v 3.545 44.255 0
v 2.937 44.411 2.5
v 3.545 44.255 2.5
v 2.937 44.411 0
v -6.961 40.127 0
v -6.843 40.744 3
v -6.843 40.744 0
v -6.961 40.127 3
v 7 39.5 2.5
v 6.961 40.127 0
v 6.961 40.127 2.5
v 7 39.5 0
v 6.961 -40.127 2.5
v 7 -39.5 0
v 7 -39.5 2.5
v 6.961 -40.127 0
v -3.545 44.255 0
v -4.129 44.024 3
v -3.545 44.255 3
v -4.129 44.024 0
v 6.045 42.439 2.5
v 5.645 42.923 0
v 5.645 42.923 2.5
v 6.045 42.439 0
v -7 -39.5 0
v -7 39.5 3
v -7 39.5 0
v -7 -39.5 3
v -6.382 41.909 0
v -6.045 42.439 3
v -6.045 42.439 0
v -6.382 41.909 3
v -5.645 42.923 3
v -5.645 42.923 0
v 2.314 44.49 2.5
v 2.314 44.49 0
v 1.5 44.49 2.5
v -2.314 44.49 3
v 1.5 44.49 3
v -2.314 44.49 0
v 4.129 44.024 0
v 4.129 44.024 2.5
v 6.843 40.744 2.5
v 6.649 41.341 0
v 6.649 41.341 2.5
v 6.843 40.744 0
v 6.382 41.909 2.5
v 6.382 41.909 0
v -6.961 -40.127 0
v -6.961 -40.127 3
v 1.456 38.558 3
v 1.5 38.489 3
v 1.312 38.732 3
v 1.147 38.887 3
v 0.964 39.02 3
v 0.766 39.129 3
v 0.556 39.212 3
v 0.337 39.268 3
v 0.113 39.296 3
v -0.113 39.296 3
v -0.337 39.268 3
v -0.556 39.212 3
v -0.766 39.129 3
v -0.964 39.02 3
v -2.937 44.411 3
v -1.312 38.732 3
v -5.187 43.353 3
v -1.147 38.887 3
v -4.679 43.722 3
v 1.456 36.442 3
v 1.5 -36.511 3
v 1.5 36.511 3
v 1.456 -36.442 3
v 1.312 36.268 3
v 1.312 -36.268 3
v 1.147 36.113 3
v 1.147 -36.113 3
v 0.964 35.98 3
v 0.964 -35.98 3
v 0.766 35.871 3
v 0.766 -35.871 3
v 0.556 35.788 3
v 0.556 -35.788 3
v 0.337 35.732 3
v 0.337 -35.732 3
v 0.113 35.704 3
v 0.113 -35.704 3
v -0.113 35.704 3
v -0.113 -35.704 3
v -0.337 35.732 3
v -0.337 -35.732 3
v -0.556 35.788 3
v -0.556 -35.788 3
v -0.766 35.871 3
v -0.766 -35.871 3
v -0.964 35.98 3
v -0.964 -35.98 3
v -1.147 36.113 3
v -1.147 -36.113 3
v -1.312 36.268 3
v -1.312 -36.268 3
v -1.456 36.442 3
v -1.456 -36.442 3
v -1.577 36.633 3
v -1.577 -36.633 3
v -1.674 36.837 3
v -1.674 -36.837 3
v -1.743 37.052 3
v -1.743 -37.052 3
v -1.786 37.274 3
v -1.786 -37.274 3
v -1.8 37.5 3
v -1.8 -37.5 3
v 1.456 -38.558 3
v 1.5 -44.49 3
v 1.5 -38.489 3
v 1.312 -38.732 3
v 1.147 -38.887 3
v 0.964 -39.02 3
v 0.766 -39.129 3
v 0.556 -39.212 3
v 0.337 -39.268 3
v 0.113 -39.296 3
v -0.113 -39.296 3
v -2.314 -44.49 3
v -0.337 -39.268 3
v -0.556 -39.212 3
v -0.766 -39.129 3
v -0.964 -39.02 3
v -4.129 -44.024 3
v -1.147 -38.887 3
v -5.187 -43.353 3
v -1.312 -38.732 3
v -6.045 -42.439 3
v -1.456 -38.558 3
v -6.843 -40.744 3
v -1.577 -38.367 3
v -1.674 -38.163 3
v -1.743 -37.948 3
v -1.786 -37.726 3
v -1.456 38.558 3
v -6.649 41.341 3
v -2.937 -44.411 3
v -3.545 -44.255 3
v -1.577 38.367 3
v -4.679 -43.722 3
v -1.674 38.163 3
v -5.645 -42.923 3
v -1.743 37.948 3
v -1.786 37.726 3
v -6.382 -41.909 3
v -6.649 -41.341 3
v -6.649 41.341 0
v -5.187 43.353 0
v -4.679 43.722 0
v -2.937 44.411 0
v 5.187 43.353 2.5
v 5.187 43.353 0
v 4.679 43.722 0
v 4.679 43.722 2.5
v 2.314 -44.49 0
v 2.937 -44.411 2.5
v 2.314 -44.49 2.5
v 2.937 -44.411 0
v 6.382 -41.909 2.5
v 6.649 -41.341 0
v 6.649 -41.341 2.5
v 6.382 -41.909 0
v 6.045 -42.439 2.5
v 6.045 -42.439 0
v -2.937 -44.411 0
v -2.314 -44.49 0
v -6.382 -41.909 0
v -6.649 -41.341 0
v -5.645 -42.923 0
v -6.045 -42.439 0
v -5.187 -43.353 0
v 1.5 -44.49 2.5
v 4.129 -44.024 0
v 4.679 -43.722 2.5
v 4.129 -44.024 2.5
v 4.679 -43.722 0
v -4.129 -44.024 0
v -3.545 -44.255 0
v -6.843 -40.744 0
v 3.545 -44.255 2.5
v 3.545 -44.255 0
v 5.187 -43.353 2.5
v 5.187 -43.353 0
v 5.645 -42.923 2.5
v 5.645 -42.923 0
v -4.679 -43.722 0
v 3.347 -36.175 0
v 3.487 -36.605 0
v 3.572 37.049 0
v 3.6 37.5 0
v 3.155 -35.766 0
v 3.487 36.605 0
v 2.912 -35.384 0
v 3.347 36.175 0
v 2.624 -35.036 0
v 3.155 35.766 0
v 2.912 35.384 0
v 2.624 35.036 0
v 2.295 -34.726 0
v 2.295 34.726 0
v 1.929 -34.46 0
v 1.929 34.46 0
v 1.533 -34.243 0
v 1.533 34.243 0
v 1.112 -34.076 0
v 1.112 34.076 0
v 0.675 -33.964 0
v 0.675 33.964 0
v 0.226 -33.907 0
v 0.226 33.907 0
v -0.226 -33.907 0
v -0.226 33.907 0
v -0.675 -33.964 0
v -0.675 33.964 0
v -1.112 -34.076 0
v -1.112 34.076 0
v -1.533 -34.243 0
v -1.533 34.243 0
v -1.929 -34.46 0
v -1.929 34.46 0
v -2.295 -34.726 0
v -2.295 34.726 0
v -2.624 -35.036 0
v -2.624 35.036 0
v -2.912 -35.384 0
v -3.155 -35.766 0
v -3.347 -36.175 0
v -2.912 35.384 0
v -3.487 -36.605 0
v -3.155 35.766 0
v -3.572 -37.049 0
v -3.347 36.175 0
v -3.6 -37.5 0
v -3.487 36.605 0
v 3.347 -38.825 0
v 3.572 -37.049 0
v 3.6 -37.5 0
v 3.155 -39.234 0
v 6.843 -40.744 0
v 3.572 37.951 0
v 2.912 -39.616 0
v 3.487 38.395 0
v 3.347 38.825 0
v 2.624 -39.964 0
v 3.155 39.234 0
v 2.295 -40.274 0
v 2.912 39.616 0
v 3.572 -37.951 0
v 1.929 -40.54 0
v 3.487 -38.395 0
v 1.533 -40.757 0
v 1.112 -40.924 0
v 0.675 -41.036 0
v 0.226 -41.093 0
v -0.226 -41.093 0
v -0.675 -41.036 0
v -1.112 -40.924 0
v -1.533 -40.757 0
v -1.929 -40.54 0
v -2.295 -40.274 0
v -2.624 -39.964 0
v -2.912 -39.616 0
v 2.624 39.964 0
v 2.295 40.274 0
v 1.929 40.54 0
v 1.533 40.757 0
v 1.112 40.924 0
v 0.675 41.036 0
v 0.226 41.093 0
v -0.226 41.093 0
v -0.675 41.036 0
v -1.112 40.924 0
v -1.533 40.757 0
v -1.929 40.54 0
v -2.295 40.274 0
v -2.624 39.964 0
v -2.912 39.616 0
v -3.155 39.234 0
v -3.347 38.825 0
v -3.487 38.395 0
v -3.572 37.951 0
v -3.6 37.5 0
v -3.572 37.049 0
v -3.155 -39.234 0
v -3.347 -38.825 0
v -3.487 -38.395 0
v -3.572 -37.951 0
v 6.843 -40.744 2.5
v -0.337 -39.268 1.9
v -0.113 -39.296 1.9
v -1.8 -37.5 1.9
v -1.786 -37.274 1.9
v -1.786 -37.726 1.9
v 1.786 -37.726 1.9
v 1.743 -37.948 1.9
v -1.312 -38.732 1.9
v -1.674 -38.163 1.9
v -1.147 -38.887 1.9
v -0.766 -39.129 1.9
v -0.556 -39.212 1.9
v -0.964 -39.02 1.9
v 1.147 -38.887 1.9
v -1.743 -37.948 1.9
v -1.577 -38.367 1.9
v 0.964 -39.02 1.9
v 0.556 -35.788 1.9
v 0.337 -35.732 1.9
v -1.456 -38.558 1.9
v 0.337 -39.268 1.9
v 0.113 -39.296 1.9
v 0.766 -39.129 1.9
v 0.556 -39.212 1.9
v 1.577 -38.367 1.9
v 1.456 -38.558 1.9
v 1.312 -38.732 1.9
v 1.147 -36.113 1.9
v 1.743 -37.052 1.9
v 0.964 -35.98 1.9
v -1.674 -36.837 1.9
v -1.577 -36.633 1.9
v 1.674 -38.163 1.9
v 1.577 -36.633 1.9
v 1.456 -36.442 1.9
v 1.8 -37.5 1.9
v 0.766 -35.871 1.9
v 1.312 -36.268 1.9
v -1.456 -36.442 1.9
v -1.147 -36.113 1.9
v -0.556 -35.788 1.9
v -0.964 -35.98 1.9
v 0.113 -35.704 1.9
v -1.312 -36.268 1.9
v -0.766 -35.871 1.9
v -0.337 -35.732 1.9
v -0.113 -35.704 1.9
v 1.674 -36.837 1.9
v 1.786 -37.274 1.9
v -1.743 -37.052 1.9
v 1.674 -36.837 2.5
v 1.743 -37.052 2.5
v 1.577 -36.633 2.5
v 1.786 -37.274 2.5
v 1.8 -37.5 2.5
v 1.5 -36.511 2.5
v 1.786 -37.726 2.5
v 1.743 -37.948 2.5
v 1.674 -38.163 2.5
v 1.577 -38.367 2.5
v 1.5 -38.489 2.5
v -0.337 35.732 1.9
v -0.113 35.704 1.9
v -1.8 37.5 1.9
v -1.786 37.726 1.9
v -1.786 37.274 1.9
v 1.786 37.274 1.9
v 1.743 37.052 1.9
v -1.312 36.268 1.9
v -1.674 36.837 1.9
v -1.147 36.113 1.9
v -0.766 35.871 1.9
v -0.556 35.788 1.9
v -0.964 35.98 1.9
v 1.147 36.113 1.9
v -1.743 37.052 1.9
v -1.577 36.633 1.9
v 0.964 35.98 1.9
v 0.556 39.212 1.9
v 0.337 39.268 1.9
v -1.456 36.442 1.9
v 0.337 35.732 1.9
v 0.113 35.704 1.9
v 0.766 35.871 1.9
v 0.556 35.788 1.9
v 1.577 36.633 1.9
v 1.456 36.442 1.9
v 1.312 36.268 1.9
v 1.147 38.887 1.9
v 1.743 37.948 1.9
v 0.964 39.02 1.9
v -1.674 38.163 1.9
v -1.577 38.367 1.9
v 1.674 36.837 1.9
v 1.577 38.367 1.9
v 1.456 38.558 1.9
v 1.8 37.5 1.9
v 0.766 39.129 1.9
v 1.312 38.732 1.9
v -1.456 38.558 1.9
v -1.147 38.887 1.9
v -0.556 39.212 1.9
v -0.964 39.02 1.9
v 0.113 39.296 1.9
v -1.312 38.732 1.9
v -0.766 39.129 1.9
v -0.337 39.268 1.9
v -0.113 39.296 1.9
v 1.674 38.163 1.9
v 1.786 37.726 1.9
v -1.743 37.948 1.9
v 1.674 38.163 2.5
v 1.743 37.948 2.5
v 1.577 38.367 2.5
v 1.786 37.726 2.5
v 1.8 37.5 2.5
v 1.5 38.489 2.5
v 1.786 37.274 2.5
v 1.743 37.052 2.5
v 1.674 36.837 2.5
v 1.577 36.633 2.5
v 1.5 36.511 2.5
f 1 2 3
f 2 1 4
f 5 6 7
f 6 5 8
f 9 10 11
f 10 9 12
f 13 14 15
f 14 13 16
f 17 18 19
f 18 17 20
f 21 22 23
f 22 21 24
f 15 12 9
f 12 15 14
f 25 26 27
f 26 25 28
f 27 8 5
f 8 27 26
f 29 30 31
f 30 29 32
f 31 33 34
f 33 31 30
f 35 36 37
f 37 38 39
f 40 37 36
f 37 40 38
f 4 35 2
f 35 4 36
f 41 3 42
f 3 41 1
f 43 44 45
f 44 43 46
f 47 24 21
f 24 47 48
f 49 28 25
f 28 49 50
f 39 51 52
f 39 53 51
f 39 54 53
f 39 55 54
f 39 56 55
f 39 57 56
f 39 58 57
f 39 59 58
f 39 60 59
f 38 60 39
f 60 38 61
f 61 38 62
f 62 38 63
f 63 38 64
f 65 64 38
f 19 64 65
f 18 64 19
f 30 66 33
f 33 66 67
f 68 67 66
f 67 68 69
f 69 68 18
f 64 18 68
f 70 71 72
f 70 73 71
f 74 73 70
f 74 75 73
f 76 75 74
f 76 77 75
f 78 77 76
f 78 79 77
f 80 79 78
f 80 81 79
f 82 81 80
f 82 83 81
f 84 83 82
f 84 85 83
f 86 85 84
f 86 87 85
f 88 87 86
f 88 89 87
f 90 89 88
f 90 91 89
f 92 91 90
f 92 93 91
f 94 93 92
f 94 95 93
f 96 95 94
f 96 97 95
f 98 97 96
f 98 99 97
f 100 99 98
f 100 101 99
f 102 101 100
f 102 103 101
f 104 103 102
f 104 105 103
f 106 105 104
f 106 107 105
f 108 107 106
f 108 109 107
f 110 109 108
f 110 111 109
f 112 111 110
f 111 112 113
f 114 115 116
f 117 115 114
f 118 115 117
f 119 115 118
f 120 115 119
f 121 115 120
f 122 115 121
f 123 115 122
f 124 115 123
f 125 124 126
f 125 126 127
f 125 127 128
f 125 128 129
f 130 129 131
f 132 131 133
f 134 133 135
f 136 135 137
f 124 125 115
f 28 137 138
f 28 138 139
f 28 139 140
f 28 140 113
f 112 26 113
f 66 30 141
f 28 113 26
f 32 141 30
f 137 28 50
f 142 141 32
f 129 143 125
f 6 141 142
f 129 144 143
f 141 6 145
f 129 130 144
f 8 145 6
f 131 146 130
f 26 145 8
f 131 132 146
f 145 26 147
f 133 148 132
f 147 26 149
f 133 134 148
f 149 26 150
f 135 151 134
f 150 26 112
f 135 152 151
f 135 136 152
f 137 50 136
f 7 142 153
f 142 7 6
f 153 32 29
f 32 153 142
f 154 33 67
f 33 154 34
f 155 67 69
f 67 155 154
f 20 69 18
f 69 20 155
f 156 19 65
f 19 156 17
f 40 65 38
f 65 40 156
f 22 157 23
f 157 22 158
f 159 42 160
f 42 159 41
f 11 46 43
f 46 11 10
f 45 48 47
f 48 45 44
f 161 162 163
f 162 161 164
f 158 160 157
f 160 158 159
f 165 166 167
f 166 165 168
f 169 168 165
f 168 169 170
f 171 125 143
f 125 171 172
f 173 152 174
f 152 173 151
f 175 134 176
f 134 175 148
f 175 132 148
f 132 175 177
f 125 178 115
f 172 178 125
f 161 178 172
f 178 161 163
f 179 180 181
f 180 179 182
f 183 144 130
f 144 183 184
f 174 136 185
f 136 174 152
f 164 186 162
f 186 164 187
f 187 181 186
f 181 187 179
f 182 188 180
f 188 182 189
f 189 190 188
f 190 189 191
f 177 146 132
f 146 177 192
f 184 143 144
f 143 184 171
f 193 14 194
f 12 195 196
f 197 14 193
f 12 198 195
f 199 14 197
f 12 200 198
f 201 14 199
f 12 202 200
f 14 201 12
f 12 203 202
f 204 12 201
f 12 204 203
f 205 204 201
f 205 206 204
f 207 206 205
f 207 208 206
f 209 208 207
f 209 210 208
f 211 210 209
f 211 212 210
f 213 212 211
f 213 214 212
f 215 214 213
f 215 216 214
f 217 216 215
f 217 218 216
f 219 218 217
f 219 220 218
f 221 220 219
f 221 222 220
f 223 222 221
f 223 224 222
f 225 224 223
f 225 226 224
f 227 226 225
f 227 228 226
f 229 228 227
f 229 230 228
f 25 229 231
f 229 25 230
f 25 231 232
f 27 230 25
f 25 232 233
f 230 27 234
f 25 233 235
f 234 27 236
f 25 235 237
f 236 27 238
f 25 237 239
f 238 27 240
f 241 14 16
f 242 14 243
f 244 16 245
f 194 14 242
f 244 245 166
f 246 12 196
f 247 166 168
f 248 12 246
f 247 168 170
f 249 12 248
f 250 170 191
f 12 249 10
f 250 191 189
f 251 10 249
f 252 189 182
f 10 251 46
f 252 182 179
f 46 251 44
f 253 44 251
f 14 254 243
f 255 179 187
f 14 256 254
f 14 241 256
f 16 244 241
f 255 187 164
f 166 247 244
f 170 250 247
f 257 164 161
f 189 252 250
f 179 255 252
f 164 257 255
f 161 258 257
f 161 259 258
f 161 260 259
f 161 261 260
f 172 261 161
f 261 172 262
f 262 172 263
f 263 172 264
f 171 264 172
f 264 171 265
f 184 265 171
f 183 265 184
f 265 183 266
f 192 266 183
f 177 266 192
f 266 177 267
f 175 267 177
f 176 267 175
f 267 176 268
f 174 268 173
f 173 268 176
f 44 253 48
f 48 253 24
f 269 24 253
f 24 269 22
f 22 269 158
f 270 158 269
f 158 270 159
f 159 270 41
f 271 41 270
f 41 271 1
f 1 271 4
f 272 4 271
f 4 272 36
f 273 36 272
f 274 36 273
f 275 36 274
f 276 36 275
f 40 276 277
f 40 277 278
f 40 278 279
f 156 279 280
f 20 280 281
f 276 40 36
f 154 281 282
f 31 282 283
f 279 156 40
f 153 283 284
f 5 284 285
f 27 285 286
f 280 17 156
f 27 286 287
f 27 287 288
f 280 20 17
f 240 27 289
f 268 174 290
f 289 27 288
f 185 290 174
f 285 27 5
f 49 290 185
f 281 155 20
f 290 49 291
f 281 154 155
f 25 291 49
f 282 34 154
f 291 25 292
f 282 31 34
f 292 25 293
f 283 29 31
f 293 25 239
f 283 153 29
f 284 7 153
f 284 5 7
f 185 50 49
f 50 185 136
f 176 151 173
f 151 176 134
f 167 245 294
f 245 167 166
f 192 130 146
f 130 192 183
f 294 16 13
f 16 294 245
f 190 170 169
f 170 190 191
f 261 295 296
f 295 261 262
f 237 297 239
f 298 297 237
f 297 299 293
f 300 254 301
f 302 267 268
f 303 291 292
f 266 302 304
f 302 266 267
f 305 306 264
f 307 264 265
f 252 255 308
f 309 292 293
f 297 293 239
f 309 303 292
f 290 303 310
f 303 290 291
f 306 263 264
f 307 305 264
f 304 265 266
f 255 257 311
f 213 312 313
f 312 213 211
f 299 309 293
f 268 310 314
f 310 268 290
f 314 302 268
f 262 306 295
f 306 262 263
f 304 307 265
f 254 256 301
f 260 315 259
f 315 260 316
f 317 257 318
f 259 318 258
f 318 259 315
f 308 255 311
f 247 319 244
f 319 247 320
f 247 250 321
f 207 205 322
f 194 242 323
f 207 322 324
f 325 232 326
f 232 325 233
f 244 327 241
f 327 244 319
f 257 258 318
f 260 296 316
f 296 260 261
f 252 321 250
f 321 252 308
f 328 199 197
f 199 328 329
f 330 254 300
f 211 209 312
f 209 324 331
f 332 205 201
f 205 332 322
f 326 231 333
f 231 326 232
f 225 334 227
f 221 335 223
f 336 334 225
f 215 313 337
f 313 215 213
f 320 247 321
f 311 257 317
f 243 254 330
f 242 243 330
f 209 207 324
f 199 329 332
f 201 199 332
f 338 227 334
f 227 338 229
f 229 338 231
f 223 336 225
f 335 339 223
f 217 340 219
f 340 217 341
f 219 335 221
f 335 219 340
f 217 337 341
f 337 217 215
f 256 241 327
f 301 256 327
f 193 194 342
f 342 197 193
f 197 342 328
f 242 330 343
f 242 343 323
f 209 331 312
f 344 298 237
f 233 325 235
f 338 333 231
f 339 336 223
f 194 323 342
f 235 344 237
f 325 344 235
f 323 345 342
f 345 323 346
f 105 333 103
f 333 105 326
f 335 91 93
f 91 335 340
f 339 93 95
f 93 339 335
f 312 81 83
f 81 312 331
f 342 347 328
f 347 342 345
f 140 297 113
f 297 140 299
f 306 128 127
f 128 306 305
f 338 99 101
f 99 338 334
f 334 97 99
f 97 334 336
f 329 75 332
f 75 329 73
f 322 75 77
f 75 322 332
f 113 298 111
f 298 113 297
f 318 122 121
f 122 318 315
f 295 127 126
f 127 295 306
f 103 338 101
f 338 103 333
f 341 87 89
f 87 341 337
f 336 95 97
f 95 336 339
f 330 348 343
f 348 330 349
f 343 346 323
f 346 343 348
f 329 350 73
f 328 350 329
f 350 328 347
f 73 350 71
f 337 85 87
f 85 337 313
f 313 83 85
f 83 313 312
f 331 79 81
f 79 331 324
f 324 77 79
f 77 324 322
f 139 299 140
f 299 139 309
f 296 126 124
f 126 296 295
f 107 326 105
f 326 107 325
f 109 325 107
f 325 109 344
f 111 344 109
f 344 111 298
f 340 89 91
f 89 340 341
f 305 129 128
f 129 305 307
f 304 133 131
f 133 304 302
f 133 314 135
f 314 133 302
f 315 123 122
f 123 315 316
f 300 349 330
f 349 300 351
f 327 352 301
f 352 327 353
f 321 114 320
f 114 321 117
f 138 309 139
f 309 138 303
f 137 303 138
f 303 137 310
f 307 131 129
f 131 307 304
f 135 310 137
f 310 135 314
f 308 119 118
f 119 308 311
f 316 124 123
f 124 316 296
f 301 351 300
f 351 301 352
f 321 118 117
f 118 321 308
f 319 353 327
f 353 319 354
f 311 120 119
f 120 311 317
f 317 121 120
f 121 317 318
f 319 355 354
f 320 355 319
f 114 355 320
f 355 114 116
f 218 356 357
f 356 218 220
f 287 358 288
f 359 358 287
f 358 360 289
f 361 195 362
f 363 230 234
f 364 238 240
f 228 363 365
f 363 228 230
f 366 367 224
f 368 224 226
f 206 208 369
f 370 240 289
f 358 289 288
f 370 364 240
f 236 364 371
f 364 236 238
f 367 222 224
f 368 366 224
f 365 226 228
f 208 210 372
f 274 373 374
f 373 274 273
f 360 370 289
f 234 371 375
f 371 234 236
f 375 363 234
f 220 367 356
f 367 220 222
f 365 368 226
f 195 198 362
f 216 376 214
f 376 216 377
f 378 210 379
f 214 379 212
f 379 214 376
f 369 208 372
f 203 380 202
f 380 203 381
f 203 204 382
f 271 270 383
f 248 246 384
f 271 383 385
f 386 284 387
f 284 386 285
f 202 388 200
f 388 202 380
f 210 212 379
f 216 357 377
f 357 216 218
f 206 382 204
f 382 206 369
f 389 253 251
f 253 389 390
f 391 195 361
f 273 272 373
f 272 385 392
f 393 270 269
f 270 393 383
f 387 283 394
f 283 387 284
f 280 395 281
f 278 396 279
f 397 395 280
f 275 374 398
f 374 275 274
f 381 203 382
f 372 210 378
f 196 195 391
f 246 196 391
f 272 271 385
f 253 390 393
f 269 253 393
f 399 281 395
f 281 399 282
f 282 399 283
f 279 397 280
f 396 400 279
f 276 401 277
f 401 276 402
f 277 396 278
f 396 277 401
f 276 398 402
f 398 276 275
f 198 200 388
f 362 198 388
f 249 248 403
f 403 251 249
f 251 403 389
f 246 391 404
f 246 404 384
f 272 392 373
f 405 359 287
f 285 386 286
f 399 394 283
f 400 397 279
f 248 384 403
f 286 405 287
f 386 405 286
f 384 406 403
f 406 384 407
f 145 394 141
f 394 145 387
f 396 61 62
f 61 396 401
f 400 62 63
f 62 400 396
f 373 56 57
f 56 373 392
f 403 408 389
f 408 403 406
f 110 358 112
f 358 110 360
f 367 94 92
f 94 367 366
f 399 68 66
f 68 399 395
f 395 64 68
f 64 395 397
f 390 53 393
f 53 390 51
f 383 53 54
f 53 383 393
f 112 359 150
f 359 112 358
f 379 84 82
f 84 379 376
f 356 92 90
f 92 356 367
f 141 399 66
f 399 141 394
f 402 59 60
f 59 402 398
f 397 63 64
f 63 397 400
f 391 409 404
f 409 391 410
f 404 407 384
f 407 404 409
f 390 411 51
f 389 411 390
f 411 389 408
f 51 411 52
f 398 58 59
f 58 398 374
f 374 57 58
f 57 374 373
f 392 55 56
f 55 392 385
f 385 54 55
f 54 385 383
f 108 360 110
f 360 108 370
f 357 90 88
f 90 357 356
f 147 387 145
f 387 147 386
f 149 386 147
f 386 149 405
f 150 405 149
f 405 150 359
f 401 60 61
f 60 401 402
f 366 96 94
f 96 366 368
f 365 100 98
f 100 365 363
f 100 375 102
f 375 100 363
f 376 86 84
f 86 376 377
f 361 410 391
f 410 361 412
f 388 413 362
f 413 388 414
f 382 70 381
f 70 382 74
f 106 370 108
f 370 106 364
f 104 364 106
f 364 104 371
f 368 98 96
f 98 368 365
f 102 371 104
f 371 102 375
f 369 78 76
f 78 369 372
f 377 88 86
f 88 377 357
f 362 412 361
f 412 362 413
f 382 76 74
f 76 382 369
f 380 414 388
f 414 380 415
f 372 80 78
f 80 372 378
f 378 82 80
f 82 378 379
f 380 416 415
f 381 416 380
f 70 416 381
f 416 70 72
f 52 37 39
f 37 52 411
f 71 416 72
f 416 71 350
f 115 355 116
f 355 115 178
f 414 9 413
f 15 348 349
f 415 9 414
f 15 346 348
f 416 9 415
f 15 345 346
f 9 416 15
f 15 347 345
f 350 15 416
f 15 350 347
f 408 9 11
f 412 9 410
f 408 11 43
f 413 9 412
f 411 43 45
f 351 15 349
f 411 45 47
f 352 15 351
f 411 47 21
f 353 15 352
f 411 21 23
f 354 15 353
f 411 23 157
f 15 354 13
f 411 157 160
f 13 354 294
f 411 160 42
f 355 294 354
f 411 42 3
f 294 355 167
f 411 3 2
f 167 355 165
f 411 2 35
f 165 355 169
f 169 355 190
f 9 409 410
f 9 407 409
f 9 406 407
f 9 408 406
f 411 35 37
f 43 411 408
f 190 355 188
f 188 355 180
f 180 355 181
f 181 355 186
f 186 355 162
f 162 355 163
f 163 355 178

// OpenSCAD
$fn = 50;


difference() {
	union() {
		hull() {
			translate(v = [-2.0000000000, 39.5000000000, 0]) {
				cylinder(h = 3, r = 5);
			}
			translate(v = [2.0000000000, 39.5000000000, 0]) {
				cylinder(h = 3, r = 5);
			}
			translate(v = [-2.0000000000, -39.5000000000, 0]) {
				cylinder(h = 3, r = 5);
			}
			translate(v = [2.0000000000, -39.5000000000, 0]) {
				cylinder(h = 3, r = 5);
			}
		}
		hull() {
			translate(v = [-2.0000000000, 39.5000000000, 0]) {
				cylinder(h = 3, r = 5);
			}
			translate(v = [2.0000000000, 39.5000000000, 0]) {
				cylinder(h = 3, r = 5);
			}
			translate(v = [-2.0000000000, -39.5000000000, 0]) {
				cylinder(h = 3, r = 5);
			}
			translate(v = [2.0000000000, -39.5000000000, 0]) {
				cylinder(h = 3, r = 5);
			}
		}
	}
	union() {
		translate(v = [0, -37.5000000000, 0]) {
			rotate(a = [0, 180, 0]) {
				difference() {
					union() {
						translate(v = [0, 0, -17.0000000000]) {
							rotate(a = [0, 0, 0]) {
								difference() {
									union() {
										#translate(v = [-1.7500000000, -3.2500000000, -0.3000000000]) {
											cube(size = [3.5000000000, 6.5000000000, 0.3000000000]);
										}
										#translate(v = [-1.7500000000, -1.7500000000, -0.6000000000]) {
											cube(size = [3.5000000000, 3.5000000000, 0.3000000000]);
										}
										#translate(v = [-1.7500000000, -3.2500000000, 2.5000000000]) {
											cube(size = [3.5000000000, 6.5000000000, 0.3000000000]);
										}
										#translate(v = [-1.7500000000, -1.7500000000, 2.8000000000]) {
											cube(size = [3.5000000000, 3.5000000000, 0.3000000000]);
										}
										#linear_extrude(height = 2.5000000000) {
											polygon(points = [[3.4620000000, 0.0000000000], [1.7310000000, 2.9981799479], [-1.7310000000, 2.9981799479], [-3.4620000000, 0.0000000000], [-1.7310000000, -2.9981799479], [1.7310000000, -2.9981799479]]);
										}
										#translate(v = [-1.7500000000, -3.2500000000, -0.3000000000]) {
											cube(size = [3.5000000000, 6.5000000000, 0.3000000000]);
										}
										#translate(v = [-1.7500000000, -1.7500000000, -0.6000000000]) {
											cube(size = [3.5000000000, 3.5000000000, 0.3000000000]);
										}
										#translate(v = [-1.7500000000, -3.2500000000, 2.5000000000]) {
											cube(size = [3.5000000000, 6.5000000000, 0.3000000000]);
										}
										#translate(v = [-1.7500000000, -1.7500000000, 2.8000000000]) {
											cube(size = [3.5000000000, 3.5000000000, 0.3000000000]);
										}
										#translate(v = [-1.7500000000, -3.2500000000, -0.3000000000]) {
											cube(size = [3.5000000000, 6.5000000000, 0.3000000000]);
										}
										#translate(v = [-1.7500000000, -1.7500000000, -0.6000000000]) {
											cube(size = [3.5000000000, 3.5000000000, 0.3000000000]);
										}
										#translate(v = [-1.7500000000, -3.2500000000, 2.5000000000]) {
											cube(size = [3.5000000000, 6.5000000000, 0.3000000000]);
										}
										#translate(v = [-1.7500000000, -1.7500000000, 2.8000000000]) {
											cube(size = [3.5000000000, 3.5000000000, 0.3000000000]);
										}
									}
									union();
								}
							}
						}
						translate(v = [0, 0, -17.0000000000]) {
							rotate(a = [0, 0, 0]) {
								difference() {
									union() {
										#translate(v = [-1.7500000000, -3.2500000000, -0.3000000000]) {
											cube(size = [3.5000000000, 6.5000000000, 0.3000000000]);
										}
										#translate(v = [-1.7500000000, -1.7500000000, -0.6000000000]) {
											cube(size = [3.5000000000, 3.5000000000, 0.3000000000]);
										}
										#translate(v = [-1.7500000000, -3.2500000000, 2.5000000000]) {
											cube(size = [3.5000000000, 6.5000000000, 0.3000000000]);
										}
										#translate(v = [-1.7500000000, -1.7500000000, 2.8000000000]) {
											cube(size = [3.5000000000, 3.5000000000, 0.3000000000]);
										}
										#linear_extrude(height = 2.5000000000) {
											polygon(points = [[3.4620000000, 0.0000000000], [1.7310000000, 2.9981799479], [-1.7310000000, 2.9981799479], [-3.4620000000, 0.0000000000], [-1.7310000000, -2.9981799479], [1.7310000000, -2.9981799479]]);
										}
										#translate(v = [-1.7500000000, -3.2500000000, -0.3000000000]) {
											cube(size = [3.5000000000, 6.5000000000, 0.3000000000]);
										}
										#translate(v = [-1.7500000000, -1.7500000000, -0.6000000000]) {
											cube(size = [3.5000000000, 3.5000000000, 0.3000000000]);
										}
										#translate(v = [-1.7500000000, -3.2500000000, 2.5000000000]) {
											cube(size = [3.5000000000, 6.5000000000, 0.3000000000]);
										}
										#translate(v = [-1.7500000000, -1.7500000000, 2.8000000000]) {
											cube(size = [3.5000000000, 3.5000000000, 0.3000000000]);
										}
										#translate(v = [-1.7500000000, -3.2500000000, -0.3000000000]) {
											cube(size = [3.5000000000, 6.5000000000, 0.3000000000]);
										}
										#translate(v = [-1.7500000000, -1.7500000000, -0.6000000000]) {
											cube(size = [3.5000000000, 3.5000000000, 0.3000000000]);
										}
										#translate(v = [-1.7500000000, -3.2500000000, 2.5000000000]) {
											cube(size = [3.5000000000, 6.5000000000, 0.3000000000]);
										}
										#translate(v = [-1.7500000000, -1.7500000000, 2.8000000000]) {
											cube(size = [3.5000000000, 3.5000000000, 0.3000000000]);
										}
									}
									union();
								}
							}
						}
						translate(v = [0, 0, -17.0000000000]) {
							rotate(a = [0, 0, 0]) {
								difference() {
									union() {
										#translate(v = [-1.7500000000, -3.2500000000, -0.3000000000]) {
											cube(size = [3.5000000000, 6.5000000000, 0.3000000000]);
										}
										#translate(v = [-1.7500000000, -1.7500000000, -0.6000000000]) {
											cube(size = [3.5000000000, 3.5000000000, 0.3000000000]);
										}
										#translate(v = [-1.7500000000, -3.2500000000, 2.5000000000]) {
											cube(size = [3.5000000000, 6.5000000000, 0.3000000000]);
										}
										#translate(v = [-1.7500000000, -1.7500000000, 2.8000000000]) {
											cube(size = [3.5000000000, 3.5000000000, 0.3000000000]);
										}
										#linear_extrude(height = 2.5000000000) {
											polygon(points = [[3.4620000000, 0.0000000000], [1.7310000000, 2.9981799479], [-1.7310000000, 2.9981799479], [-3.4620000000, 0.0000000000], [-1.7310000000, -2.9981799479], [1.7310000000, -2.9981799479]]);
										}
										#translate(v = [-1.7500000000, -3.2500000000, -0.3000000000]) {
											cube(size = [3.5000000000, 6.5000000000, 0.3000000000]);
										}
										#translate(v = [-1.7500000000, -1.7500000000, -0.6000000000]) {
											cube(size = [3.5000000000, 3.5000000000, 0.3000000000]);
										}
										#translate(v = [-1.7500000000, -3.2500000000, 2.5000000000]) {
											cube(size = [3.5000000000, 6.5000000000, 0.3000000000]);
										}
										#translate(v = [-1.7500000000, -1.7500000000, 2.8000000000]) {
											cube(size = [3.5000000000, 3.5000000000, 0.3000000000]);
										}
										#translate(v = [-1.7500000000, -3.2500000000, -0.3000000000]) {
											cube(size = [3.5000000000, 6.5000000000, 0.3000000000]);
										}
										#translate(v = [-1.7500000000, -1.7500000000, -0.6000000000]) {
											cube(size = [3.5000000000, 3.5000000000, 0.3000000000]);
										}
										#translate(v = [-1.7500000000, -3.2500000000, 2.5000000000]) {
											cube(size = [3.5000000000, 6.5000000000, 0.3000000000]);
										}
										#translate(v = [-1.7500000000, -1.7500000000, 2.8000000000]) {
											cube(size = [3.5000000000, 3.5000000000, 0.3000000000]);
										}
									}
									union();
								}
							}
						}
						#translate(v = [0, 0, -17.0000000000]) {
							cylinder(h = 17, r = 1.5000000000);
						}
						#translate(v = [0, 0, -1.9000000000]) {
							cylinder(h = 1.9000000000, r1 = 1.8000000000, r2 = 3.6000000000);
						}
						#translate(v = [0, 0, -17.0000000000]) {
							cylinder(h = 17, r = 1.8000000000);
						}
						#translate(v = [0, 0, -17.0000000000]) {
							cylinder(h = 17, r = 1.5000000000);
						}
					}
					union();
				}
			}
		}
		translate(v = [0, 37.5000000000, 0]) {
			rotate(a = [0, 180, 0]) {
				difference() {
					union() {
						translate(v = [0, 0, -17.0000000000]) {
							rotate(a = [0, 0, 0]) {
								difference() {
									union() {
										#translate(v = [-1.7500000000, -3.2500000000, -0.3000000000]) {
											cube(size = [3.5000000000, 6.5000000000, 0.3000000000]);
										}
										#translate(v = [-1.7500000000, -1.7500000000, -0.6000000000]) {
											cube(size = [3.5000000000, 3.5000000000, 0.3000000000]);
										}
										#translate(v = [-1.7500000000, -3.2500000000, 2.5000000000]) {
											cube(size = [3.5000000000, 6.5000000000, 0.3000000000]);
										}
										#translate(v = [-1.7500000000, -1.7500000000, 2.8000000000]) {
											cube(size = [3.5000000000, 3.5000000000, 0.3000000000]);
										}
										#linear_extrude(height = 2.5000000000) {
											polygon(points = [[3.4620000000, 0.0000000000], [1.7310000000, 2.9981799479], [-1.7310000000, 2.9981799479], [-3.4620000000, 0.0000000000], [-1.7310000000, -2.9981799479], [1.7310000000, -2.9981799479]]);
										}
										#translate(v = [-1.7500000000, -3.2500000000, -0.3000000000]) {
											cube(size = [3.5000000000, 6.5000000000, 0.3000000000]);
										}
										#translate(v = [-1.7500000000, -1.7500000000, -0.6000000000]) {
											cube(size = [3.5000000000, 3.5000000000, 0.3000000000]);
										}
										#translate(v = [-1.7500000000, -3.2500000000, 2.5000000000]) {
											cube(size = [3.5000000000, 6.5000000000, 0.3000000000]);
										}
										#translate(v = [-1.7500000000, -1.7500000000, 2.8000000000]) {
											cube(size = [3.5000000000, 3.5000000000, 0.3000000000]);
										}
										#translate(v = [-1.7500000000, -3.2500000000, -0.3000000000]) {
											cube(size = [3.5000000000, 6.5000000000, 0.3000000000]);
										}
										#translate(v = [-1.7500000000, -1.7500000000, -0.6000000000]) {
											cube(size = [3.5000000000, 3.5000000000, 0.3000000000]);
										}
										#translate(v = [-1.7500000000, -3.2500000000, 2.5000000000]) {
											cube(size = [3.5000000000, 6.5000000000, 0.3000000000]);
										}
										#translate(v = [-1.7500000000, -1.7500000000, 2.8000000000]) {
											cube(size = [3.5000000000, 3.5000000000, 0.3000000000]);
										}
									}
									union();
								}
							}
						}
						translate(v = [0, 0, -17.0000000000]) {
							rotate(a = [0, 0, 0]) {
								difference() {
									union() {
										#translate(v = [-1.7500000000, -3.2500000000, -0.3000000000]) {
											cube(size = [3.5000000000, 6.5000000000, 0.3000000000]);
										}
										#translate(v = [-1.7500000000, -1.7500000000, -0.6000000000]) {
											cube(size = [3.5000000000, 3.5000000000, 0.3000000000]);
										}
										#translate(v = [-1.7500000000, -3.2500000000, 2.5000000000]) {
											cube(size = [3.5000000000, 6.5000000000, 0.3000000000]);
										}
										#translate(v = [-1.7500000000, -1.7500000000, 2.8000000000]) {
											cube(size = [3.5000000000, 3.5000000000, 0.3000000000]);
										}
										#linear_extrude(height = 2.5000000000) {
											polygon(points = [[3.4620000000, 0.0000000000], [1.7310000000, 2.9981799479], [-1.7310000000, 2.9981799479], [-3.4620000000, 0.0000000000], [-1.7310000000, -2.9981799479], [1.7310000000, -2.9981799479]]);
										}
										#translate(v = [-1.7500000000, -3.2500000000, -0.3000000000]) {
											cube(size = [3.5000000000, 6.5000000000, 0.3000000000]);
										}
										#translate(v = [-1.7500000000, -1.7500000000, -0.6000000000]) {
											cube(size = [3.5000000000, 3.5000000000, 0.3000000000]);
										}
										#translate(v = [-1.7500000000, -3.2500000000, 2.5000000000]) {
											cube(size = [3.5000000000, 6.5000000000, 0.3000000000]);
										}
										#translate(v = [-1.7500000000, -1.7500000000, 2.8000000000]) {
											cube(size = [3.5000000000, 3.5000000000, 0.3000000000]);
										}
										#translate(v = [-1.7500000000, -3.2500000000, -0.3000000000]) {
											cube(size = [3.5000000000, 6.5000000000, 0.3000000000]);
										}
										#translate(v = [-1.7500000000, -1.7500000000, -0.6000000000]) {
											cube(size = [3.5000000000, 3.5000000000, 0.3000000000]);
										}
										#translate(v = [-1.7500000000, -3.2500000000, 2.5000000000]) {
											cube(size = [3.5000000000, 6.5000000000, 0.3000000000]);
										}
										#translate(v = [-1.7500000000, -1.7500000000, 2.8000000000]) {
											cube(size = [3.5000000000, 3.5000000000, 0.3000000000]);
										}
									}
									union();
								}
							}
						}
						translate(v = [0, 0, -17.0000000000]) {
							rotate(a = [0, 0, 0]) {
								difference() {
									union() {
										#translate(v = [-1.7500000000, -3.2500000000, -0.3000000000]) {
											cube(size = [3.5000000000, 6.5000000000, 0.3000000000]);
										}
										#translate(v = [-1.7500000000, -1.7500000000, -0.6000000000]) {
											cube(size = [3.5000000000, 3.5000000000, 0.3000000000]);
										}
										#translate(v = [-1.7500000000, -3.2500000000, 2.5000000000]) {
											cube(size = [3.5000000000, 6.5000000000, 0.3000000000]);
										}
										#translate(v = [-1.7500000000, -1.7500000000, 2.8000000000]) {
											cube(size = [3.5000000000, 3.5000000000, 0.3000000000]);
										}
										#linear_extrude(height = 2.5000000000) {
											polygon(points = [[3.4620000000, 0.0000000000], [1.7310000000, 2.9981799479], [-1.7310000000, 2.9981799479], [-3.4620000000, 0.0000000000], [-1.7310000000, -2.9981799479], [1.7310000000, -2.9981799479]]);
										}
										#translate(v = [-1.7500000000, -3.2500000000, -0.3000000000]) {
											cube(size = [3.5000000000, 6.5000000000, 0.3000000000]);
										}
										#translate(v = [-1.7500000000, -1.7500000000, -0.6000000000]) {
											cube(size = [3.5000000000, 3.5000000000, 0.3000000000]);
										}
										#translate(v = [-1.7500000000, -3.2500000000, 2.5000000000]) {
											cube(size = [3.5000000000, 6.5000000000, 0.3000000000]);
										}
										#translate(v = [-1.7500000000, -1.7500000000, 2.8000000000]) {
											cube(size = [3.5000000000, 3.5000000000, 0.3000000000]);
										}
										#translate(v = [-1.7500000000, -3.2500000000, -0.3000000000]) {
											cube(size = [3.5000000000, 6.5000000000, 0.3000000000]);
										}
										#translate(v = [-1.7500000000, -1.7500000000, -0.6000000000]) {
											cube(size = [3.5000000000, 3.5000000000, 0.3000000000]);
										}
										#translate(v = [-1.7500000000, -3.2500000000, 2.5000000000]) {
											cube(size = [3.5000000000, 6.5000000000, 0.3000000000]);
										}
										#translate(v = [-1.7500000000, -1.7500000000, 2.8000000000]) {
											cube(size = [3.5000000000, 3.5000000000, 0.3000000000]);
										}
									}
									union();
								}
							}
						}
						#translate(v = [0, 0, -17.0000000000]) {
							cylinder(h = 17, r = 1.5000000000);
						}
						#translate(v = [0, 0, -1.9000000000]) {
							cylinder(h = 1.9000000000, r1 = 1.8000000000, r2 = 3.6000000000);
						}
						#translate(v = [0, 0, -17.0000000000]) {
							cylinder(h = 17, r = 1.8000000000);
						}
						#translate(v = [0, 0, -17.0000000000]) {
							cylinder(h = 17, r = 1.5000000000);
						}
					}
					union();
				}
			}
		}
		#translate(v = [1.5000000000, -50.8000000000, 2.5000000000]) {
			cube(size = [152.4000000000, 101.6000000000, 0.5000000000]);
		}
	}
}
